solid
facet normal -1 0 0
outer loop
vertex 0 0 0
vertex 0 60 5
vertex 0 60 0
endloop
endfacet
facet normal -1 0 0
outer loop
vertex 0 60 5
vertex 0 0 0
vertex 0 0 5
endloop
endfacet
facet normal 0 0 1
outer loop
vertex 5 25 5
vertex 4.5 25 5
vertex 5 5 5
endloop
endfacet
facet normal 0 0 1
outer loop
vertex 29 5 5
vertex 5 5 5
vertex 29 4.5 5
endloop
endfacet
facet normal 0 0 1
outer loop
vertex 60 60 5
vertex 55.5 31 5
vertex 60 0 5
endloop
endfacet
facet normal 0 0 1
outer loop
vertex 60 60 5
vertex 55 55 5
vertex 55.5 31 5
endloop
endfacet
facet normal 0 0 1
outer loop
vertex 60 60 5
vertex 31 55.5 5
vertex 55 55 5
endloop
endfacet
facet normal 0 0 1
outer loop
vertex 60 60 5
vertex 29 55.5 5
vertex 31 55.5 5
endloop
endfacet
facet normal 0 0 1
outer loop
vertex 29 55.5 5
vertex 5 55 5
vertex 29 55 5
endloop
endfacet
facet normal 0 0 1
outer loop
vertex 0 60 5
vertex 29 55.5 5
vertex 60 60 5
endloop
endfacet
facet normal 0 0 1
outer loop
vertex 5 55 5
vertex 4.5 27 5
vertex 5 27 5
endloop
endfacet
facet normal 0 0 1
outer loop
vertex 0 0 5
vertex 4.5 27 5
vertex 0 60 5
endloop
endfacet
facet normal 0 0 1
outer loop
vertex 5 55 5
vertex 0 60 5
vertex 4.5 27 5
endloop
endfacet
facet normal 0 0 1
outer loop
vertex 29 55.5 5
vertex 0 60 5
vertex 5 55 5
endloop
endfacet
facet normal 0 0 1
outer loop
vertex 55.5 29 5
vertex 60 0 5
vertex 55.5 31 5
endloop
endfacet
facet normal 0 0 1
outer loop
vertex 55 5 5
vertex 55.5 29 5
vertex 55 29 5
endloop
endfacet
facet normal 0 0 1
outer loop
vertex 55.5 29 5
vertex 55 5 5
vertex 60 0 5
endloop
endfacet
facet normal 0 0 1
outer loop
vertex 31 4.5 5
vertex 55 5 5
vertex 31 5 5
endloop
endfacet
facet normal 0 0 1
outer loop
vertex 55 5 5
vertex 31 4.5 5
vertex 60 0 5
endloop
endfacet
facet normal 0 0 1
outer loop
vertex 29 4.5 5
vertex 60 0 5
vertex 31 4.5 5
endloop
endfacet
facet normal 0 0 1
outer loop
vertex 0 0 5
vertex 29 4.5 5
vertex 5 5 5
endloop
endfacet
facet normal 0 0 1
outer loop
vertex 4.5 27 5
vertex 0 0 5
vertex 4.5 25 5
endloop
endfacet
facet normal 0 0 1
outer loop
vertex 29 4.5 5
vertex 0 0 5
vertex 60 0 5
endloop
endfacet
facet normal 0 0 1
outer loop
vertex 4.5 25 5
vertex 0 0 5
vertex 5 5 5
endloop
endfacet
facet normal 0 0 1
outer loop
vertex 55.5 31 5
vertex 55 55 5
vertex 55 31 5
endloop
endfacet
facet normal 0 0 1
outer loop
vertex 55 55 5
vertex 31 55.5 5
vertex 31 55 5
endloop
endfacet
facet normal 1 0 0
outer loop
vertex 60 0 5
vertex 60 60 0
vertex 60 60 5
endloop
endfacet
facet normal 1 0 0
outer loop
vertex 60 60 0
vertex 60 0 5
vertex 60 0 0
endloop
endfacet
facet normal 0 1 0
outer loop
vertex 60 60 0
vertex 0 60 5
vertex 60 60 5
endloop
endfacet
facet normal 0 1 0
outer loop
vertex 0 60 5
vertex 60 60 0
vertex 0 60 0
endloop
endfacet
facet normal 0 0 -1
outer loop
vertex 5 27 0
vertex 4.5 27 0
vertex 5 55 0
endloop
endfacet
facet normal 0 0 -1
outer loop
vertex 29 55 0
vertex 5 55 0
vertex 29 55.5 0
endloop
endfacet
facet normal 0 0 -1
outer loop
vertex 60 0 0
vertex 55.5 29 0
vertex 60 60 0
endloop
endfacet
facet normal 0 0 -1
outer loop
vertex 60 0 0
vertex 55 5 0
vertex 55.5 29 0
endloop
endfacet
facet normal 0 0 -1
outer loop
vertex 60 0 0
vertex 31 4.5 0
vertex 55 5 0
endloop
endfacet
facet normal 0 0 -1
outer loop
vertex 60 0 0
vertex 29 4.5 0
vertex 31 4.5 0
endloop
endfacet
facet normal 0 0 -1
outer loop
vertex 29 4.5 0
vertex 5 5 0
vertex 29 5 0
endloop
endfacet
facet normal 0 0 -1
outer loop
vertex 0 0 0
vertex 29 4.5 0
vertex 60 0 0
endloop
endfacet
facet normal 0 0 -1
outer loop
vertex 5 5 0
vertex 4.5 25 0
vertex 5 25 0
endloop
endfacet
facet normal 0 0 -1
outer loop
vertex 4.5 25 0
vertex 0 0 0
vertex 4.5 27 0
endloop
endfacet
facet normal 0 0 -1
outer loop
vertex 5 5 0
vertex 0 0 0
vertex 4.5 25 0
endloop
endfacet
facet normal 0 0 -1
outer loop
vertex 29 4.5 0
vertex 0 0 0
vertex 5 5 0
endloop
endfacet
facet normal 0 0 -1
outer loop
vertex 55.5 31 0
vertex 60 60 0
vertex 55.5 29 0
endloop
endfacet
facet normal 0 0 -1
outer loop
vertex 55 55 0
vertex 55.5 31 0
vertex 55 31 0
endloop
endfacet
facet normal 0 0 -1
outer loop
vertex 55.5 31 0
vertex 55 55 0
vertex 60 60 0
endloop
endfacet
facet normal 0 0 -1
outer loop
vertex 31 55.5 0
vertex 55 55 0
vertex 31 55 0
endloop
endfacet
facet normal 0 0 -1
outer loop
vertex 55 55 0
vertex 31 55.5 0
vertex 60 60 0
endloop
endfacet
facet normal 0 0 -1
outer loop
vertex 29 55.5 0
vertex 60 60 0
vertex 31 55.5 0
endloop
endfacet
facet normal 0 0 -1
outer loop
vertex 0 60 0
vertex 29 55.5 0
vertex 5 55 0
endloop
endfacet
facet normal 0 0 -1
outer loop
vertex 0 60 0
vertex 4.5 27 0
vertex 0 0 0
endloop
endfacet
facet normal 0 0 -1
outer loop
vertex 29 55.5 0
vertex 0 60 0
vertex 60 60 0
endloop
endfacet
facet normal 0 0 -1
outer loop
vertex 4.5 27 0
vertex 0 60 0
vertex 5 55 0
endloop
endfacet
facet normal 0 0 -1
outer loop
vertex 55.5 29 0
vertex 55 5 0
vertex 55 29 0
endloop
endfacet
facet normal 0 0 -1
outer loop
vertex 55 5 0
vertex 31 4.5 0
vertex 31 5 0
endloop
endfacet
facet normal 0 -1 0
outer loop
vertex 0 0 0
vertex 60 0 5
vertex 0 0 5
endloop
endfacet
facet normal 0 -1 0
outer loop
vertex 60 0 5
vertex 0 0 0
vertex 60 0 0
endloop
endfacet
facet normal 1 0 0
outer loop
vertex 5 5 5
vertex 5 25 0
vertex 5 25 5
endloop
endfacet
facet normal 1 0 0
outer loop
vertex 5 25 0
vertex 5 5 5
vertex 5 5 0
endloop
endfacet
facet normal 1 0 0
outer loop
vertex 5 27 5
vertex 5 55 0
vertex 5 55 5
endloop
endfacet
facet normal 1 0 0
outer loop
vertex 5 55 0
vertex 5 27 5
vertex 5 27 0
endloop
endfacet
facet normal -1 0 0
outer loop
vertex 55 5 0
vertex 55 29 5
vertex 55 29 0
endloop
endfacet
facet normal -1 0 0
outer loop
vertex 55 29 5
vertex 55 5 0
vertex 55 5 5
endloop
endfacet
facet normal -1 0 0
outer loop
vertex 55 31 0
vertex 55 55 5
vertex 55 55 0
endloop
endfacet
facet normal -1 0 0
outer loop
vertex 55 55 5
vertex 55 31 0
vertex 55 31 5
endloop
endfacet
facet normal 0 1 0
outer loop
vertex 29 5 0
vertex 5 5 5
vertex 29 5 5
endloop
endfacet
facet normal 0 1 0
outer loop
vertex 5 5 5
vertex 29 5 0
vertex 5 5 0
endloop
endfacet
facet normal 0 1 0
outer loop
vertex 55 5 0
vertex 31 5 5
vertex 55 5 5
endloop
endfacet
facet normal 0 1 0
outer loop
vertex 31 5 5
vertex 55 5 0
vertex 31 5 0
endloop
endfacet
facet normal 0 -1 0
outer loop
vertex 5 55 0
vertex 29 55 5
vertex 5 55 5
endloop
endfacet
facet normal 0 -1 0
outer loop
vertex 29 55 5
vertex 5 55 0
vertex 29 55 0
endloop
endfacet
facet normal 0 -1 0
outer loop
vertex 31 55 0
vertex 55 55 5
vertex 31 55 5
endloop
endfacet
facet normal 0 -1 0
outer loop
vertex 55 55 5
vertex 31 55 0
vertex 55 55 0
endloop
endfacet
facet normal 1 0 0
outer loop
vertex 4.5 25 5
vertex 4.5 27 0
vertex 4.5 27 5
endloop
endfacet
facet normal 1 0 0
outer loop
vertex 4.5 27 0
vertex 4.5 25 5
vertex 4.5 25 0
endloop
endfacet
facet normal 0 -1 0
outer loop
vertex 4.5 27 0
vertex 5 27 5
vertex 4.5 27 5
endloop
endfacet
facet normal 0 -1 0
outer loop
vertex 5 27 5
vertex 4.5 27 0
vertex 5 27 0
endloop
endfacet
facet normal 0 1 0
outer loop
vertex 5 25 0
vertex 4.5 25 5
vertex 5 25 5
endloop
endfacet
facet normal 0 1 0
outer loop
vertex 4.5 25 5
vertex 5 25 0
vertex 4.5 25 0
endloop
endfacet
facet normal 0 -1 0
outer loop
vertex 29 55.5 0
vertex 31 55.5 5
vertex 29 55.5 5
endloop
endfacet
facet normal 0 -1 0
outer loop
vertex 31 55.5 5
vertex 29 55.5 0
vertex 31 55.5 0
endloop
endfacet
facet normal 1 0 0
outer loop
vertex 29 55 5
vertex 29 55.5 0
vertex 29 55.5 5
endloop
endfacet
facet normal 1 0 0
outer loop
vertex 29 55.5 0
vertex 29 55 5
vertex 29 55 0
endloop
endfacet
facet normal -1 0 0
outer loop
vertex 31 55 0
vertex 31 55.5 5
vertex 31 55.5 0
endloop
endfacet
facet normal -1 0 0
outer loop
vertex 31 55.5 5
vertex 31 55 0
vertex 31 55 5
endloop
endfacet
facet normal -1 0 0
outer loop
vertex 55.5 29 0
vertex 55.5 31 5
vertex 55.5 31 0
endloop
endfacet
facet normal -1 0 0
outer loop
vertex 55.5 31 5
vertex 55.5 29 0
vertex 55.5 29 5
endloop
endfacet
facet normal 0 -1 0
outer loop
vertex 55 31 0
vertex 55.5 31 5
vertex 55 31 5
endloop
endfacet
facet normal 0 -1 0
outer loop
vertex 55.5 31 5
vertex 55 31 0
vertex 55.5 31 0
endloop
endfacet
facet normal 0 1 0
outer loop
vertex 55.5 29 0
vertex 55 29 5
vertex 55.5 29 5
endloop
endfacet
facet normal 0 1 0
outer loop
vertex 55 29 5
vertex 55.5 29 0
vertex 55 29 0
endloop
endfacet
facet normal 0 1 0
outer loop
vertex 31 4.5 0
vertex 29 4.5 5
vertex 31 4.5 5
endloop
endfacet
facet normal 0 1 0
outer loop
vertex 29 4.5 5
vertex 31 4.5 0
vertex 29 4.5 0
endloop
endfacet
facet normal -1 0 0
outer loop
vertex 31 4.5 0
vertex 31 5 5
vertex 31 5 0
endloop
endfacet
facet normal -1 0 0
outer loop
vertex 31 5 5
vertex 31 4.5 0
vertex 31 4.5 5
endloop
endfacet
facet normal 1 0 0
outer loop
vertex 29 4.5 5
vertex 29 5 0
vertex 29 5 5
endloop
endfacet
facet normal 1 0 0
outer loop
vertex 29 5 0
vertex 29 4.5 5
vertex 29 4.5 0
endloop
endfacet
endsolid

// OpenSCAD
// Test square
//
// Generate STL using OpenSCAD:
//   openscad square.scad -o square.stl

square_width = 5;
square_size = 60;
square_height = 5;

module hollow_square() {
    difference() {
        cube([square_size, square_size, square_height]);
        translate([square_width, square_width, -1])
            cube([square_size-2*square_width, square_size-2*square_width,
                  square_height+2]);
    }
}

module notch() {
    CUT = 0.01;
    depth = .5;
    width = 1;
    translate([-depth, -width, -CUT])
        cube([2*depth, 2*width, square_height + 2*CUT]);
}

module square_with_notches() {
    difference() {
        // Start with initial square
        hollow_square();
        // Remove four notches on inside perimeter
        translate([square_width, square_size/2 - 4, 0])
            notch();
        translate([square_size/2, square_size - square_width, 0])
            rotate([0, 0, 90])
                notch();
        translate([square_size - square_width, square_size/2, 0])
            notch();
        translate([square_size/2, square_width, 0])
            rotate([0, 0, 90])
                notch();
    }
}

square_with_notches();
